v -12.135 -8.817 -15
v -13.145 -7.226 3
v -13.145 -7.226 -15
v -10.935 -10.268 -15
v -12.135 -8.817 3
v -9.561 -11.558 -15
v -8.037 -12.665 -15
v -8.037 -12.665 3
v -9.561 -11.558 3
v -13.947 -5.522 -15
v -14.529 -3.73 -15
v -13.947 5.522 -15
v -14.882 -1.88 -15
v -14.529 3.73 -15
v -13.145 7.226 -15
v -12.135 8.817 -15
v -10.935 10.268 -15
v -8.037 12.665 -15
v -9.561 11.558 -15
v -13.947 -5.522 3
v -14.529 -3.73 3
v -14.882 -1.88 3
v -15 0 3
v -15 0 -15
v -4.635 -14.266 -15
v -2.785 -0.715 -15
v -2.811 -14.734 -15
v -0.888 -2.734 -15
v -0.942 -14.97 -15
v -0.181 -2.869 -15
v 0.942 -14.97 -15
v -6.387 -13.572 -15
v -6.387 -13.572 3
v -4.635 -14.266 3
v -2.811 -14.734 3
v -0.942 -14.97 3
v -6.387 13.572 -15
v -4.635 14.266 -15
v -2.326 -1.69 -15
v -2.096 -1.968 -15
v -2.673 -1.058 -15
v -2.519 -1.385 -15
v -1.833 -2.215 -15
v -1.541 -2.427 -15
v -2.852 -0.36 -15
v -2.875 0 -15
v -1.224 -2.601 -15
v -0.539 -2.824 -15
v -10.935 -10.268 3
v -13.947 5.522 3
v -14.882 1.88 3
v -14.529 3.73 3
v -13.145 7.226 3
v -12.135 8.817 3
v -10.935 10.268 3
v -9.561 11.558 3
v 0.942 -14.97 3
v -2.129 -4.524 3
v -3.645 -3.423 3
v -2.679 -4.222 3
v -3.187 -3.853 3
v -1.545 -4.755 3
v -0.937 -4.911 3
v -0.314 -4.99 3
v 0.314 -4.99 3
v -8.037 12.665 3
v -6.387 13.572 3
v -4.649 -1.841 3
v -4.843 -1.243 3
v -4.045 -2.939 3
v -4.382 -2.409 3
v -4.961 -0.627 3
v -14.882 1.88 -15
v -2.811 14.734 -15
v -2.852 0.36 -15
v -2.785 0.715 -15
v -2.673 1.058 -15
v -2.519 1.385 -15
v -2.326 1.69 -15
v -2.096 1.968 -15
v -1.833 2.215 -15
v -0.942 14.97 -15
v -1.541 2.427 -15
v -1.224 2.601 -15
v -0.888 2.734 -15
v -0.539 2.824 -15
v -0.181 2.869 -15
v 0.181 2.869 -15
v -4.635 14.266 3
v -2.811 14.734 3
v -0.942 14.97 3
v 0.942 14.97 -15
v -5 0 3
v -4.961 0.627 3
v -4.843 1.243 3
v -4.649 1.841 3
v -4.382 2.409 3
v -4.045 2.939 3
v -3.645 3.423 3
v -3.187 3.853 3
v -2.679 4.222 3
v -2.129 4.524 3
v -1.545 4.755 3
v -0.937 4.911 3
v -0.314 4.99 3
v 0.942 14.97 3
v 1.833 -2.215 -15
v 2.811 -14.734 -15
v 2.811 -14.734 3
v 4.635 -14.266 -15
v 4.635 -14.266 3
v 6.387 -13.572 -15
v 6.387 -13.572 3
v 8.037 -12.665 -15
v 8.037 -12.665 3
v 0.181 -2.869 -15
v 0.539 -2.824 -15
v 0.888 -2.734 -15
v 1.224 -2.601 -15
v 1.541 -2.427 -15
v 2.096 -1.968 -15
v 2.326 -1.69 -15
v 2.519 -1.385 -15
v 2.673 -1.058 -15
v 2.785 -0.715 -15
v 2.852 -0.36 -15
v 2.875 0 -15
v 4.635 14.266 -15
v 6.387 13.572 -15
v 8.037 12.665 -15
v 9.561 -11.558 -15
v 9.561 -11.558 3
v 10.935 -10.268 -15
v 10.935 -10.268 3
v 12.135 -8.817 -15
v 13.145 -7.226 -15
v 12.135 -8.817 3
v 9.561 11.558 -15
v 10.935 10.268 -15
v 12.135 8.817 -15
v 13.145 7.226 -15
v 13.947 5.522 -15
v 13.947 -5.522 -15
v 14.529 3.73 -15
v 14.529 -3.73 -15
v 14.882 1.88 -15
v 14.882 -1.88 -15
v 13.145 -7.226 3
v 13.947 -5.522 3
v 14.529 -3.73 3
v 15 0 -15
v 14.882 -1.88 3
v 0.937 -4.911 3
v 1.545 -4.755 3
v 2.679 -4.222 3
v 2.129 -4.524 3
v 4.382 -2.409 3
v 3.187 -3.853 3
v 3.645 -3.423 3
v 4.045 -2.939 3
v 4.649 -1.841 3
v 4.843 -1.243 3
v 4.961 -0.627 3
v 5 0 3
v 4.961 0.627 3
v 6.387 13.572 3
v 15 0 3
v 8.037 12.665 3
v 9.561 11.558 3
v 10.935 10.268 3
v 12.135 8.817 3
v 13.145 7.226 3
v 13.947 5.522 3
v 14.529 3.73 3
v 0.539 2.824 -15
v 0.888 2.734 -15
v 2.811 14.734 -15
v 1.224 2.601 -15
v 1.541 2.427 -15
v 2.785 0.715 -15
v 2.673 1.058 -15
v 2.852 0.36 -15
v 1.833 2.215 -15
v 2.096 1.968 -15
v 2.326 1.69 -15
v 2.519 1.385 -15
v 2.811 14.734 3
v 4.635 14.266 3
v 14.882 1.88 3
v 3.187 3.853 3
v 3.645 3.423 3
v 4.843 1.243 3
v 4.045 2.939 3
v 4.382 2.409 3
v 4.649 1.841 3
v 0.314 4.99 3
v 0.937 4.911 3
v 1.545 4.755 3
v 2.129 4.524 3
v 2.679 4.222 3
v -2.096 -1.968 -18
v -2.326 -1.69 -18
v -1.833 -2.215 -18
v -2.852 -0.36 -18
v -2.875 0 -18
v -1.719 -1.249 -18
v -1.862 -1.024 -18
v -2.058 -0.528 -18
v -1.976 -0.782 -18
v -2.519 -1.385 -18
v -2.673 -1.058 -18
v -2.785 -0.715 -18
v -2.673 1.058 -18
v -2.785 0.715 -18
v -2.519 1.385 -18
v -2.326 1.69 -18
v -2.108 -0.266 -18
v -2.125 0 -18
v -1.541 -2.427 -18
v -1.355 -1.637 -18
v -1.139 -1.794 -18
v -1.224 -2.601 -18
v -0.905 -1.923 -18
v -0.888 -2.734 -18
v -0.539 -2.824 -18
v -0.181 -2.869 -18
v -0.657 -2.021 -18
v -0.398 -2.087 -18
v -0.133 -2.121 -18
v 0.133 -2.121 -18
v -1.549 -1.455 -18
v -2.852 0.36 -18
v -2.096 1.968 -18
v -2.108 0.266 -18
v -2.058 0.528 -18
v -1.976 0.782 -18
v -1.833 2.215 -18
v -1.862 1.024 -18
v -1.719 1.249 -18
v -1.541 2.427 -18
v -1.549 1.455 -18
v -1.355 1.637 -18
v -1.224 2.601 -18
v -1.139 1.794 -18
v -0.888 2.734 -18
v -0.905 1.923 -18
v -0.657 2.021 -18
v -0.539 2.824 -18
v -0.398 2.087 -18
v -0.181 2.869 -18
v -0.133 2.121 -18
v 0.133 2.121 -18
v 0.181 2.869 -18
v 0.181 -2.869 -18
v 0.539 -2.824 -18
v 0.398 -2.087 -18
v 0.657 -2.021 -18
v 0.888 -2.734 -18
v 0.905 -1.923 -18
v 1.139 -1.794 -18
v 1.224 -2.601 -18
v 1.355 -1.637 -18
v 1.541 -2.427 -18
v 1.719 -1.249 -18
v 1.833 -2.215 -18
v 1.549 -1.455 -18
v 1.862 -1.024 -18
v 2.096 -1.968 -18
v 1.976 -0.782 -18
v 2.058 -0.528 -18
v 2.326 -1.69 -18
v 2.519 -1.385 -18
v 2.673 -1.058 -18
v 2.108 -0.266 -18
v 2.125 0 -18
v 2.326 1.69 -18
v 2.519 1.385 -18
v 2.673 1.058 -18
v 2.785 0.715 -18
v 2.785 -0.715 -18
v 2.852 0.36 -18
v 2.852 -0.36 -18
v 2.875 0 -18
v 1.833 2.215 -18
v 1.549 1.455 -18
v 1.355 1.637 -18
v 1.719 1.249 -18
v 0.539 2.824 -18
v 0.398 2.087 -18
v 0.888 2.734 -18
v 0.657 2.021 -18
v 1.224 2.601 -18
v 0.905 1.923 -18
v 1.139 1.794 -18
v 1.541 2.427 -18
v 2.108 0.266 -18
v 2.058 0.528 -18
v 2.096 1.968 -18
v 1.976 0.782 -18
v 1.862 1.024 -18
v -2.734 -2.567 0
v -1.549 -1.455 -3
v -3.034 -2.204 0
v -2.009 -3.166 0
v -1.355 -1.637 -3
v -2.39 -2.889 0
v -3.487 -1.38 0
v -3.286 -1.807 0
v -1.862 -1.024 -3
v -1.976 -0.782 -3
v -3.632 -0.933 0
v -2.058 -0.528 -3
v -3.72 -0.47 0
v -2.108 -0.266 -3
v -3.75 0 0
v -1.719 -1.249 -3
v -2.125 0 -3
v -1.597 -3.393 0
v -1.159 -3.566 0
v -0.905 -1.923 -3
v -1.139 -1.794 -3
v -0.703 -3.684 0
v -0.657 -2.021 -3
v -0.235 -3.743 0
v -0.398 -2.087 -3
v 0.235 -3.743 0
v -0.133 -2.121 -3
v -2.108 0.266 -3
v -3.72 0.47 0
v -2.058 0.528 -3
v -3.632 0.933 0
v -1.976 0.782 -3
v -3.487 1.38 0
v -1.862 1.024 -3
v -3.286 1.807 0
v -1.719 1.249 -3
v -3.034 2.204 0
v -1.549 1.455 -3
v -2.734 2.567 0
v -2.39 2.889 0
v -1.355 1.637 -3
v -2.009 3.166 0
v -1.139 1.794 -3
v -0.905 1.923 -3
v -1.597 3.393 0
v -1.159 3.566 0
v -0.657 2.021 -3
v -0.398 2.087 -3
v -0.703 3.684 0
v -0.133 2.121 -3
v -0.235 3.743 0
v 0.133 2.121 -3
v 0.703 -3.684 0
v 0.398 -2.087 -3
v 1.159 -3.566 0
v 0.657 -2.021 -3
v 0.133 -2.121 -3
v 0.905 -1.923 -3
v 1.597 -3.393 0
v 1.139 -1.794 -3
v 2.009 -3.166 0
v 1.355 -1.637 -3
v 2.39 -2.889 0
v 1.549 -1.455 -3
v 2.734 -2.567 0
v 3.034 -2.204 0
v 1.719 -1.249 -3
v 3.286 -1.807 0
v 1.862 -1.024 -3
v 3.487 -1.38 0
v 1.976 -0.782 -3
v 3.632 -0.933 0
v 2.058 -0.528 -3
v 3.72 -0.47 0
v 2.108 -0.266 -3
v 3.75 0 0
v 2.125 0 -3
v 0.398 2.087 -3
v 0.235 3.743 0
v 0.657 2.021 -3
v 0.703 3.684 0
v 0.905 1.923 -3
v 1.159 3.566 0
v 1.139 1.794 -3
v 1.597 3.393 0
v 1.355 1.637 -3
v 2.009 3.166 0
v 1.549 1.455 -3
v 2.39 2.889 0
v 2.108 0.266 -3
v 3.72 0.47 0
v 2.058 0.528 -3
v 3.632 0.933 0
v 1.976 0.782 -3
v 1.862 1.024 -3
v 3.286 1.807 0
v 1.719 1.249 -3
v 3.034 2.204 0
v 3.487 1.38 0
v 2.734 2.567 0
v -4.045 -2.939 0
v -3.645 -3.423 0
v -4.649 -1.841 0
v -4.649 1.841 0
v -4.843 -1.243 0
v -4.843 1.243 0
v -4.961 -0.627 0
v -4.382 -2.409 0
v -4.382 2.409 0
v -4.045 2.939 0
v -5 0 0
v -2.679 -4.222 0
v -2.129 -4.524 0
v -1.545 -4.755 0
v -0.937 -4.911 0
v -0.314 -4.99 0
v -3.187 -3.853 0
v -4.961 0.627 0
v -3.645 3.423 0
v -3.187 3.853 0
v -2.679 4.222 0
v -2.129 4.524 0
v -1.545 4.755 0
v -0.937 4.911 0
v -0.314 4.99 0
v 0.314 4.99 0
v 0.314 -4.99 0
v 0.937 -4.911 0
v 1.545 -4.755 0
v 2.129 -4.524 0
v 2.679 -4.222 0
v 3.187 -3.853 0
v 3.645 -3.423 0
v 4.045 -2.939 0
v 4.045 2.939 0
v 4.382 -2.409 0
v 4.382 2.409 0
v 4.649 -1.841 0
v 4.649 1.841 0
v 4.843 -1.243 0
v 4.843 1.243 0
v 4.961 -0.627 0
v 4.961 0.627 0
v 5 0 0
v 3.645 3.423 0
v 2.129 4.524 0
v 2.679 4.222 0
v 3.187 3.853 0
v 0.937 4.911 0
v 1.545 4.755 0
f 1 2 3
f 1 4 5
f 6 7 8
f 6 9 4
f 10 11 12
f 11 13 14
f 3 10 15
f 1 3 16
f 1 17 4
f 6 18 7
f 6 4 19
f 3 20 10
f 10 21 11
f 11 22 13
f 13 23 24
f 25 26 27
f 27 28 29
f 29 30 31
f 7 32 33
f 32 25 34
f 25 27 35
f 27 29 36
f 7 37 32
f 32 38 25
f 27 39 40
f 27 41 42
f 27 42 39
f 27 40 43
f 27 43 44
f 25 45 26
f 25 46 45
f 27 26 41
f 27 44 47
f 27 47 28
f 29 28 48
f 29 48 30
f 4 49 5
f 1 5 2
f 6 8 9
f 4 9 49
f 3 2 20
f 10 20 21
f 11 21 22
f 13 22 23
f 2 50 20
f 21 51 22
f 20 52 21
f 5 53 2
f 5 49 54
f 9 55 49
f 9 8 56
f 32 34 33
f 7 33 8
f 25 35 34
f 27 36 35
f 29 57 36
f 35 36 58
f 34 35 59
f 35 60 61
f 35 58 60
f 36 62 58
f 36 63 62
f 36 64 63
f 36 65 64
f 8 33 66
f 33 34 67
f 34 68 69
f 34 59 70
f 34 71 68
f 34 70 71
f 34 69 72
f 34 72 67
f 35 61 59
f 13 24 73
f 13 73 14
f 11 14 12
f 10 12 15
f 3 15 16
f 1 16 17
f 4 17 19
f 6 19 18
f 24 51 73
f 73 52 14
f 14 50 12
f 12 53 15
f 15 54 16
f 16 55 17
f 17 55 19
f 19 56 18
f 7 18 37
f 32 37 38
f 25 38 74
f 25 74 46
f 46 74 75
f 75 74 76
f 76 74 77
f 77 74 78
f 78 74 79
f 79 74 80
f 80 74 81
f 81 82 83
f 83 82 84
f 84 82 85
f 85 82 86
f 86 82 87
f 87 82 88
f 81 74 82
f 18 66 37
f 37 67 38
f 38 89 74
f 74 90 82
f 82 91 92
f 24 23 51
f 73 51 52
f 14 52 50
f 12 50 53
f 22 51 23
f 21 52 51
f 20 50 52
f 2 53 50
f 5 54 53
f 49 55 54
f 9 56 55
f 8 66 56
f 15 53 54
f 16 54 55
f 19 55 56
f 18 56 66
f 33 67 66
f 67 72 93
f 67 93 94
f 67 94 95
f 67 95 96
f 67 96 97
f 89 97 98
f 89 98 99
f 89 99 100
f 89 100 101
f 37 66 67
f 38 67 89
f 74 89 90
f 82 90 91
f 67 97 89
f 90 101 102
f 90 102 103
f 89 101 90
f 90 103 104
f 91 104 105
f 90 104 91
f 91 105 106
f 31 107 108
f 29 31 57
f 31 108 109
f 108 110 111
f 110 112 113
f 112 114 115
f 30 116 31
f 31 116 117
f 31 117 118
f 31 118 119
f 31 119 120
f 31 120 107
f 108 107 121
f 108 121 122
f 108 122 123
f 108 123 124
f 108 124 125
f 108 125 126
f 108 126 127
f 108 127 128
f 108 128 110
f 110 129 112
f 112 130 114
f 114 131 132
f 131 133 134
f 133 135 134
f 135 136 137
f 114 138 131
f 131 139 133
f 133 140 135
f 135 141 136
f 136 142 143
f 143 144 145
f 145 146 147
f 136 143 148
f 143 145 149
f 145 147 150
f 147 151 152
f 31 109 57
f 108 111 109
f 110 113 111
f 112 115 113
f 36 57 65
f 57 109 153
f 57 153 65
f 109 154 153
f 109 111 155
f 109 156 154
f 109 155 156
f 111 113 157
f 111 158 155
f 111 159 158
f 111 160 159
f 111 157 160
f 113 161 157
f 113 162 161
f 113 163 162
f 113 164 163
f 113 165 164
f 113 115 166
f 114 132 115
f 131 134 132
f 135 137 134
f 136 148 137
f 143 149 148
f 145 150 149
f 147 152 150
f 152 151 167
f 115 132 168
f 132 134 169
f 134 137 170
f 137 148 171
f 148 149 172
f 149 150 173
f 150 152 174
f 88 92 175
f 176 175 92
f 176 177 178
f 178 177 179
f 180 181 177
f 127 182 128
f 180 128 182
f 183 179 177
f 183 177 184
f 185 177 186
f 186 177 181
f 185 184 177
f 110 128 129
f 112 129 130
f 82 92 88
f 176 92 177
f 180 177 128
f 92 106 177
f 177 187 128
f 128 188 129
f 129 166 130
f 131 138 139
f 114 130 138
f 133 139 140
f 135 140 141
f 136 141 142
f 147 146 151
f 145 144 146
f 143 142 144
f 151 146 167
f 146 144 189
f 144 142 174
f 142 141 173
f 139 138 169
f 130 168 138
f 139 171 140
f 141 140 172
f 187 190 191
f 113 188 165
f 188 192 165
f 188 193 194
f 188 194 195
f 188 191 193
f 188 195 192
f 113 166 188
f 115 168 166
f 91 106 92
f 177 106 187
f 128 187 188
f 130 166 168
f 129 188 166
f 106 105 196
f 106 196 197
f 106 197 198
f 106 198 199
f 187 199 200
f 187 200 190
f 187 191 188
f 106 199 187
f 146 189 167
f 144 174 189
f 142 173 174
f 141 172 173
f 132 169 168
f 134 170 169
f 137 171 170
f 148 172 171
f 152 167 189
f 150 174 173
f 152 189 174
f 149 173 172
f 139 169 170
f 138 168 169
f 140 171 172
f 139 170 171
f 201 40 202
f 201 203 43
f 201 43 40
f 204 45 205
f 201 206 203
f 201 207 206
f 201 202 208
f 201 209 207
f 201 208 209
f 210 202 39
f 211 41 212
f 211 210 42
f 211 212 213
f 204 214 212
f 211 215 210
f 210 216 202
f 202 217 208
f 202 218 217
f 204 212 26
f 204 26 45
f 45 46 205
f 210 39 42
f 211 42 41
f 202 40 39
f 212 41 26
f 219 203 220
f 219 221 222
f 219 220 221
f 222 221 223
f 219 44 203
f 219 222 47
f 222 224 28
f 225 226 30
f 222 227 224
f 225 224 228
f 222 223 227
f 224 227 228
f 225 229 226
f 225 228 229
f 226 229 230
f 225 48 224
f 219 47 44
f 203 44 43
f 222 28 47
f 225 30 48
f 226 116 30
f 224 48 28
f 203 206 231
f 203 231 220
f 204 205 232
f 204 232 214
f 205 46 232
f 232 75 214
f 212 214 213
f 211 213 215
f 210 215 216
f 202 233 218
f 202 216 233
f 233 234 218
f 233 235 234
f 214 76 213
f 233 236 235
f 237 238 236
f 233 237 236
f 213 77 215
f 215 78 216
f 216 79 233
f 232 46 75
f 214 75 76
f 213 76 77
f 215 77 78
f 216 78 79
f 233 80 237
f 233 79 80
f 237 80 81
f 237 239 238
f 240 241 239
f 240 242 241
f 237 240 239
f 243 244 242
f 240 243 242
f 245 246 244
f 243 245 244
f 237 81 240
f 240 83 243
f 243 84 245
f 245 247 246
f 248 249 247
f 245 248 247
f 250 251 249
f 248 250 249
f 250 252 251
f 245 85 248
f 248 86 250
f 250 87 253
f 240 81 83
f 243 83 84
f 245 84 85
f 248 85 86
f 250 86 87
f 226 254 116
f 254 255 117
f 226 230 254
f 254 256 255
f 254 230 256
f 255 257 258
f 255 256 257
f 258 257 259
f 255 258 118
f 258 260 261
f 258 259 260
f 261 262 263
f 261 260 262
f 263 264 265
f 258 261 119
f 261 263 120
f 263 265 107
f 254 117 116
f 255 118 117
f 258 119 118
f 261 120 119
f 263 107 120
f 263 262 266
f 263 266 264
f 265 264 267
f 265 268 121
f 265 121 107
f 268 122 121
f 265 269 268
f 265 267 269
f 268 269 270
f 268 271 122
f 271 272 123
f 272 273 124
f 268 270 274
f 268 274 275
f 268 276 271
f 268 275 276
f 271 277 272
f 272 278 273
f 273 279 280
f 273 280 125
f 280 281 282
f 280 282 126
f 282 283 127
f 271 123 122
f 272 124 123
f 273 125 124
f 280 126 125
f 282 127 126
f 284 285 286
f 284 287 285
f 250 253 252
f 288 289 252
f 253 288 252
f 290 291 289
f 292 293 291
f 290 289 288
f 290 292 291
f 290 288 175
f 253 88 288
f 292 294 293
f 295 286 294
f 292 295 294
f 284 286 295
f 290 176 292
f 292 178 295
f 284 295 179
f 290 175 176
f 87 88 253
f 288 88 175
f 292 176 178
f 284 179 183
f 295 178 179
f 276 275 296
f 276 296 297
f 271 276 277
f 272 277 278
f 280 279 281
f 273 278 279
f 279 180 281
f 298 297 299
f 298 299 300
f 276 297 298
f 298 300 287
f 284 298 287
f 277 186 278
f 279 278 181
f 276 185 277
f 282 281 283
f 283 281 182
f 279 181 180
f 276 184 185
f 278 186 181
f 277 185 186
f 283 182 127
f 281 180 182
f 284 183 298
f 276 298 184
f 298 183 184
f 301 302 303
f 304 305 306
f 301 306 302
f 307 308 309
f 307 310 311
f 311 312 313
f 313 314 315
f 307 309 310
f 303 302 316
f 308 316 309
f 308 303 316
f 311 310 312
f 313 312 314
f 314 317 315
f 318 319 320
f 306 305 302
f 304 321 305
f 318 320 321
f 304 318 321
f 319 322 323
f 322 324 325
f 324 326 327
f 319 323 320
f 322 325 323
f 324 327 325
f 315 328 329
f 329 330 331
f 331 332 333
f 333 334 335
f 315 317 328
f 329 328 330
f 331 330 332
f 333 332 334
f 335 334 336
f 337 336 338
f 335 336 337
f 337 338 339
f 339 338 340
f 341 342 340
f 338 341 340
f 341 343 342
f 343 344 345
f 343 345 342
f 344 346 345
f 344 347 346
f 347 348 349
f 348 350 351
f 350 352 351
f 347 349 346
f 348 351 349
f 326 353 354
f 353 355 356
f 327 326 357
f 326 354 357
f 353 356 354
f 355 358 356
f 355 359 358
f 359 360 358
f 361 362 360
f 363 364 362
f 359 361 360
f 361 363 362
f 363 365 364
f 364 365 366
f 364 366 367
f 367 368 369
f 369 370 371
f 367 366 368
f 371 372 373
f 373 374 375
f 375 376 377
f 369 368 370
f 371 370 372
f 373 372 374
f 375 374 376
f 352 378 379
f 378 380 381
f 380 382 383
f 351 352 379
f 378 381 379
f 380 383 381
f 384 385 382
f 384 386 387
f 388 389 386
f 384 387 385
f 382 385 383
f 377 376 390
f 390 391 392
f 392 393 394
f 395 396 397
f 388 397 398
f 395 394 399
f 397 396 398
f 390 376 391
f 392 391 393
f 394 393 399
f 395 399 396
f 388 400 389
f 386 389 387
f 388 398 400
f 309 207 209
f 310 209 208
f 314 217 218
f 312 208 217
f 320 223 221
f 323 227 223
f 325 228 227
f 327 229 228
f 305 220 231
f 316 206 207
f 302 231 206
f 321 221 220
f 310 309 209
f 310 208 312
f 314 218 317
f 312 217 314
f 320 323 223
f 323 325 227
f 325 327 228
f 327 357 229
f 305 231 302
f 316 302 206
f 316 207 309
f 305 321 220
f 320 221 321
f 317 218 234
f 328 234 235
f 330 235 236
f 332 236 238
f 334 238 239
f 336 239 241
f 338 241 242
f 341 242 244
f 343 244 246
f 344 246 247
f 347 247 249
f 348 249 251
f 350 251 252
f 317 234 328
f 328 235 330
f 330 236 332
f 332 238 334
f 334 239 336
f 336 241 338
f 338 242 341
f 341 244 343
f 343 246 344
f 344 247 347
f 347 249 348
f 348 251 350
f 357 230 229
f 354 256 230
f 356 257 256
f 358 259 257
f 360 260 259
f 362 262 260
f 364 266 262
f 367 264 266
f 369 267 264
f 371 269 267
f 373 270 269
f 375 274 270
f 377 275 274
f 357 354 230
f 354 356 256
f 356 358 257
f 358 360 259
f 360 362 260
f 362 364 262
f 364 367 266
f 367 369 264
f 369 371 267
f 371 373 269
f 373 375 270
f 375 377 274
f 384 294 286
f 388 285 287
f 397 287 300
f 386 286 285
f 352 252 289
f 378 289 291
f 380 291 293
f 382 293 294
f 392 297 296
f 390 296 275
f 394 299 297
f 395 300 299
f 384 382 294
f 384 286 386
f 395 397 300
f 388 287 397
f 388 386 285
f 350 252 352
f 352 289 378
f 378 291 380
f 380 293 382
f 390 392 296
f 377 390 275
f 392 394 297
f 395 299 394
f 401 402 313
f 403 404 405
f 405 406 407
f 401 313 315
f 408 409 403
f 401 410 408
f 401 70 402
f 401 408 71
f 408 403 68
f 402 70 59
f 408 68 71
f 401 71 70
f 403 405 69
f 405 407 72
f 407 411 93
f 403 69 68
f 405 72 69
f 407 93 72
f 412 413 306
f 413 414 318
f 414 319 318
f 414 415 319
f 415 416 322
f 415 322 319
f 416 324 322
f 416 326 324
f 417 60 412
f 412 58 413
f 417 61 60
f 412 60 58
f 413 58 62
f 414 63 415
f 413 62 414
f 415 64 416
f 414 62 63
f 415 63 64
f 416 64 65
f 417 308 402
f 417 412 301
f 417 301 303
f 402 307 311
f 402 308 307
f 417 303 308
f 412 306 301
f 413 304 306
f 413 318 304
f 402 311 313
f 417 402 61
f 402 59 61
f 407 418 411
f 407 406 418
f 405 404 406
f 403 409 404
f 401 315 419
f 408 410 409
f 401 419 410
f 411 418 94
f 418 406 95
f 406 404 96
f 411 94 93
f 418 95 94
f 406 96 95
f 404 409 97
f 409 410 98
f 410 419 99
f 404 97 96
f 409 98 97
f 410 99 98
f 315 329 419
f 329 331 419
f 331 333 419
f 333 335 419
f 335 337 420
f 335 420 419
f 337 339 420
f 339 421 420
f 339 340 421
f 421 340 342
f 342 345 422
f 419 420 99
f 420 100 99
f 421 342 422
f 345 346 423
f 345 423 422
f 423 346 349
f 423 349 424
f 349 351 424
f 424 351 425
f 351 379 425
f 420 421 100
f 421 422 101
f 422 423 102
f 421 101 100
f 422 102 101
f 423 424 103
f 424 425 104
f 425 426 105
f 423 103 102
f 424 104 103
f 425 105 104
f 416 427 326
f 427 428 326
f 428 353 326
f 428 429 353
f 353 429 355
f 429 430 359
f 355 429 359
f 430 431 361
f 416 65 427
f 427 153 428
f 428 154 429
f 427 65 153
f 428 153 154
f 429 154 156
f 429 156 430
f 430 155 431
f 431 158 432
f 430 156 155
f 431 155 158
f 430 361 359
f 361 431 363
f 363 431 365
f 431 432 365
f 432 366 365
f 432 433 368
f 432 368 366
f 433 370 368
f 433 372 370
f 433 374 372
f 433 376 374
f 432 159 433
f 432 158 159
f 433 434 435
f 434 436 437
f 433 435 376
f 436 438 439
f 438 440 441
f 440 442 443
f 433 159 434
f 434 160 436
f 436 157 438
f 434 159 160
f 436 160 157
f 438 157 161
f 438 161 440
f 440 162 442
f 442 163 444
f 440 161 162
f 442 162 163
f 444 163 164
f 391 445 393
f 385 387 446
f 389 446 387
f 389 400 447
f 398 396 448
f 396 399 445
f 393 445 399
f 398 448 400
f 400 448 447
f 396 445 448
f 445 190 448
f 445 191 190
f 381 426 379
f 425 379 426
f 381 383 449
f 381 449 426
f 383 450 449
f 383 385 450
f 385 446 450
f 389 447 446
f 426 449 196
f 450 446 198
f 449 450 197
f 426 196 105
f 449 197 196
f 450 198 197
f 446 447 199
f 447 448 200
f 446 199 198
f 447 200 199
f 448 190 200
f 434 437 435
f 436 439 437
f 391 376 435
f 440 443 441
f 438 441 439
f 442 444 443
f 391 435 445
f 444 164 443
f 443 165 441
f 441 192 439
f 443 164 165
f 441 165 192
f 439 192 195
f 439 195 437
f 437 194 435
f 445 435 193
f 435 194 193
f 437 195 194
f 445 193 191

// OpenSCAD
$fn = 50;

difference() {
	union() {
		translate(v = [0, 0, -15.0]) {
			cylinder(h = 18, r = 15.0);
		}
		#translate(v = [0, 0, -18.0]) {
			cylinder(h = 18, r = 2.875);
		}
	}
	union() {
		translate(v = [0, 0, 0]) {
			rotate(a = [0, 0, 0]) {
				difference() {
					union() {
						translate(v = [0, 0, -18.0]) {
							cylinder(h = 18, r = 2.0);
						}
						translate(v = [0, 0, -3]) {
							cylinder(h = 3, r1 = 2.125, r2 = 3.75);
						}
						translate(v = [0, 0, -18.0]) {
							cylinder(h = 18, r = 2.125);
						}
						translate(v = [0, 0, -18.0]) {
							cylinder(h = 18, r = 2.0);
						}
					}
					union();
				}
			}
		}
		#cylinder(h = 3, r = 5.0);
	}
}
